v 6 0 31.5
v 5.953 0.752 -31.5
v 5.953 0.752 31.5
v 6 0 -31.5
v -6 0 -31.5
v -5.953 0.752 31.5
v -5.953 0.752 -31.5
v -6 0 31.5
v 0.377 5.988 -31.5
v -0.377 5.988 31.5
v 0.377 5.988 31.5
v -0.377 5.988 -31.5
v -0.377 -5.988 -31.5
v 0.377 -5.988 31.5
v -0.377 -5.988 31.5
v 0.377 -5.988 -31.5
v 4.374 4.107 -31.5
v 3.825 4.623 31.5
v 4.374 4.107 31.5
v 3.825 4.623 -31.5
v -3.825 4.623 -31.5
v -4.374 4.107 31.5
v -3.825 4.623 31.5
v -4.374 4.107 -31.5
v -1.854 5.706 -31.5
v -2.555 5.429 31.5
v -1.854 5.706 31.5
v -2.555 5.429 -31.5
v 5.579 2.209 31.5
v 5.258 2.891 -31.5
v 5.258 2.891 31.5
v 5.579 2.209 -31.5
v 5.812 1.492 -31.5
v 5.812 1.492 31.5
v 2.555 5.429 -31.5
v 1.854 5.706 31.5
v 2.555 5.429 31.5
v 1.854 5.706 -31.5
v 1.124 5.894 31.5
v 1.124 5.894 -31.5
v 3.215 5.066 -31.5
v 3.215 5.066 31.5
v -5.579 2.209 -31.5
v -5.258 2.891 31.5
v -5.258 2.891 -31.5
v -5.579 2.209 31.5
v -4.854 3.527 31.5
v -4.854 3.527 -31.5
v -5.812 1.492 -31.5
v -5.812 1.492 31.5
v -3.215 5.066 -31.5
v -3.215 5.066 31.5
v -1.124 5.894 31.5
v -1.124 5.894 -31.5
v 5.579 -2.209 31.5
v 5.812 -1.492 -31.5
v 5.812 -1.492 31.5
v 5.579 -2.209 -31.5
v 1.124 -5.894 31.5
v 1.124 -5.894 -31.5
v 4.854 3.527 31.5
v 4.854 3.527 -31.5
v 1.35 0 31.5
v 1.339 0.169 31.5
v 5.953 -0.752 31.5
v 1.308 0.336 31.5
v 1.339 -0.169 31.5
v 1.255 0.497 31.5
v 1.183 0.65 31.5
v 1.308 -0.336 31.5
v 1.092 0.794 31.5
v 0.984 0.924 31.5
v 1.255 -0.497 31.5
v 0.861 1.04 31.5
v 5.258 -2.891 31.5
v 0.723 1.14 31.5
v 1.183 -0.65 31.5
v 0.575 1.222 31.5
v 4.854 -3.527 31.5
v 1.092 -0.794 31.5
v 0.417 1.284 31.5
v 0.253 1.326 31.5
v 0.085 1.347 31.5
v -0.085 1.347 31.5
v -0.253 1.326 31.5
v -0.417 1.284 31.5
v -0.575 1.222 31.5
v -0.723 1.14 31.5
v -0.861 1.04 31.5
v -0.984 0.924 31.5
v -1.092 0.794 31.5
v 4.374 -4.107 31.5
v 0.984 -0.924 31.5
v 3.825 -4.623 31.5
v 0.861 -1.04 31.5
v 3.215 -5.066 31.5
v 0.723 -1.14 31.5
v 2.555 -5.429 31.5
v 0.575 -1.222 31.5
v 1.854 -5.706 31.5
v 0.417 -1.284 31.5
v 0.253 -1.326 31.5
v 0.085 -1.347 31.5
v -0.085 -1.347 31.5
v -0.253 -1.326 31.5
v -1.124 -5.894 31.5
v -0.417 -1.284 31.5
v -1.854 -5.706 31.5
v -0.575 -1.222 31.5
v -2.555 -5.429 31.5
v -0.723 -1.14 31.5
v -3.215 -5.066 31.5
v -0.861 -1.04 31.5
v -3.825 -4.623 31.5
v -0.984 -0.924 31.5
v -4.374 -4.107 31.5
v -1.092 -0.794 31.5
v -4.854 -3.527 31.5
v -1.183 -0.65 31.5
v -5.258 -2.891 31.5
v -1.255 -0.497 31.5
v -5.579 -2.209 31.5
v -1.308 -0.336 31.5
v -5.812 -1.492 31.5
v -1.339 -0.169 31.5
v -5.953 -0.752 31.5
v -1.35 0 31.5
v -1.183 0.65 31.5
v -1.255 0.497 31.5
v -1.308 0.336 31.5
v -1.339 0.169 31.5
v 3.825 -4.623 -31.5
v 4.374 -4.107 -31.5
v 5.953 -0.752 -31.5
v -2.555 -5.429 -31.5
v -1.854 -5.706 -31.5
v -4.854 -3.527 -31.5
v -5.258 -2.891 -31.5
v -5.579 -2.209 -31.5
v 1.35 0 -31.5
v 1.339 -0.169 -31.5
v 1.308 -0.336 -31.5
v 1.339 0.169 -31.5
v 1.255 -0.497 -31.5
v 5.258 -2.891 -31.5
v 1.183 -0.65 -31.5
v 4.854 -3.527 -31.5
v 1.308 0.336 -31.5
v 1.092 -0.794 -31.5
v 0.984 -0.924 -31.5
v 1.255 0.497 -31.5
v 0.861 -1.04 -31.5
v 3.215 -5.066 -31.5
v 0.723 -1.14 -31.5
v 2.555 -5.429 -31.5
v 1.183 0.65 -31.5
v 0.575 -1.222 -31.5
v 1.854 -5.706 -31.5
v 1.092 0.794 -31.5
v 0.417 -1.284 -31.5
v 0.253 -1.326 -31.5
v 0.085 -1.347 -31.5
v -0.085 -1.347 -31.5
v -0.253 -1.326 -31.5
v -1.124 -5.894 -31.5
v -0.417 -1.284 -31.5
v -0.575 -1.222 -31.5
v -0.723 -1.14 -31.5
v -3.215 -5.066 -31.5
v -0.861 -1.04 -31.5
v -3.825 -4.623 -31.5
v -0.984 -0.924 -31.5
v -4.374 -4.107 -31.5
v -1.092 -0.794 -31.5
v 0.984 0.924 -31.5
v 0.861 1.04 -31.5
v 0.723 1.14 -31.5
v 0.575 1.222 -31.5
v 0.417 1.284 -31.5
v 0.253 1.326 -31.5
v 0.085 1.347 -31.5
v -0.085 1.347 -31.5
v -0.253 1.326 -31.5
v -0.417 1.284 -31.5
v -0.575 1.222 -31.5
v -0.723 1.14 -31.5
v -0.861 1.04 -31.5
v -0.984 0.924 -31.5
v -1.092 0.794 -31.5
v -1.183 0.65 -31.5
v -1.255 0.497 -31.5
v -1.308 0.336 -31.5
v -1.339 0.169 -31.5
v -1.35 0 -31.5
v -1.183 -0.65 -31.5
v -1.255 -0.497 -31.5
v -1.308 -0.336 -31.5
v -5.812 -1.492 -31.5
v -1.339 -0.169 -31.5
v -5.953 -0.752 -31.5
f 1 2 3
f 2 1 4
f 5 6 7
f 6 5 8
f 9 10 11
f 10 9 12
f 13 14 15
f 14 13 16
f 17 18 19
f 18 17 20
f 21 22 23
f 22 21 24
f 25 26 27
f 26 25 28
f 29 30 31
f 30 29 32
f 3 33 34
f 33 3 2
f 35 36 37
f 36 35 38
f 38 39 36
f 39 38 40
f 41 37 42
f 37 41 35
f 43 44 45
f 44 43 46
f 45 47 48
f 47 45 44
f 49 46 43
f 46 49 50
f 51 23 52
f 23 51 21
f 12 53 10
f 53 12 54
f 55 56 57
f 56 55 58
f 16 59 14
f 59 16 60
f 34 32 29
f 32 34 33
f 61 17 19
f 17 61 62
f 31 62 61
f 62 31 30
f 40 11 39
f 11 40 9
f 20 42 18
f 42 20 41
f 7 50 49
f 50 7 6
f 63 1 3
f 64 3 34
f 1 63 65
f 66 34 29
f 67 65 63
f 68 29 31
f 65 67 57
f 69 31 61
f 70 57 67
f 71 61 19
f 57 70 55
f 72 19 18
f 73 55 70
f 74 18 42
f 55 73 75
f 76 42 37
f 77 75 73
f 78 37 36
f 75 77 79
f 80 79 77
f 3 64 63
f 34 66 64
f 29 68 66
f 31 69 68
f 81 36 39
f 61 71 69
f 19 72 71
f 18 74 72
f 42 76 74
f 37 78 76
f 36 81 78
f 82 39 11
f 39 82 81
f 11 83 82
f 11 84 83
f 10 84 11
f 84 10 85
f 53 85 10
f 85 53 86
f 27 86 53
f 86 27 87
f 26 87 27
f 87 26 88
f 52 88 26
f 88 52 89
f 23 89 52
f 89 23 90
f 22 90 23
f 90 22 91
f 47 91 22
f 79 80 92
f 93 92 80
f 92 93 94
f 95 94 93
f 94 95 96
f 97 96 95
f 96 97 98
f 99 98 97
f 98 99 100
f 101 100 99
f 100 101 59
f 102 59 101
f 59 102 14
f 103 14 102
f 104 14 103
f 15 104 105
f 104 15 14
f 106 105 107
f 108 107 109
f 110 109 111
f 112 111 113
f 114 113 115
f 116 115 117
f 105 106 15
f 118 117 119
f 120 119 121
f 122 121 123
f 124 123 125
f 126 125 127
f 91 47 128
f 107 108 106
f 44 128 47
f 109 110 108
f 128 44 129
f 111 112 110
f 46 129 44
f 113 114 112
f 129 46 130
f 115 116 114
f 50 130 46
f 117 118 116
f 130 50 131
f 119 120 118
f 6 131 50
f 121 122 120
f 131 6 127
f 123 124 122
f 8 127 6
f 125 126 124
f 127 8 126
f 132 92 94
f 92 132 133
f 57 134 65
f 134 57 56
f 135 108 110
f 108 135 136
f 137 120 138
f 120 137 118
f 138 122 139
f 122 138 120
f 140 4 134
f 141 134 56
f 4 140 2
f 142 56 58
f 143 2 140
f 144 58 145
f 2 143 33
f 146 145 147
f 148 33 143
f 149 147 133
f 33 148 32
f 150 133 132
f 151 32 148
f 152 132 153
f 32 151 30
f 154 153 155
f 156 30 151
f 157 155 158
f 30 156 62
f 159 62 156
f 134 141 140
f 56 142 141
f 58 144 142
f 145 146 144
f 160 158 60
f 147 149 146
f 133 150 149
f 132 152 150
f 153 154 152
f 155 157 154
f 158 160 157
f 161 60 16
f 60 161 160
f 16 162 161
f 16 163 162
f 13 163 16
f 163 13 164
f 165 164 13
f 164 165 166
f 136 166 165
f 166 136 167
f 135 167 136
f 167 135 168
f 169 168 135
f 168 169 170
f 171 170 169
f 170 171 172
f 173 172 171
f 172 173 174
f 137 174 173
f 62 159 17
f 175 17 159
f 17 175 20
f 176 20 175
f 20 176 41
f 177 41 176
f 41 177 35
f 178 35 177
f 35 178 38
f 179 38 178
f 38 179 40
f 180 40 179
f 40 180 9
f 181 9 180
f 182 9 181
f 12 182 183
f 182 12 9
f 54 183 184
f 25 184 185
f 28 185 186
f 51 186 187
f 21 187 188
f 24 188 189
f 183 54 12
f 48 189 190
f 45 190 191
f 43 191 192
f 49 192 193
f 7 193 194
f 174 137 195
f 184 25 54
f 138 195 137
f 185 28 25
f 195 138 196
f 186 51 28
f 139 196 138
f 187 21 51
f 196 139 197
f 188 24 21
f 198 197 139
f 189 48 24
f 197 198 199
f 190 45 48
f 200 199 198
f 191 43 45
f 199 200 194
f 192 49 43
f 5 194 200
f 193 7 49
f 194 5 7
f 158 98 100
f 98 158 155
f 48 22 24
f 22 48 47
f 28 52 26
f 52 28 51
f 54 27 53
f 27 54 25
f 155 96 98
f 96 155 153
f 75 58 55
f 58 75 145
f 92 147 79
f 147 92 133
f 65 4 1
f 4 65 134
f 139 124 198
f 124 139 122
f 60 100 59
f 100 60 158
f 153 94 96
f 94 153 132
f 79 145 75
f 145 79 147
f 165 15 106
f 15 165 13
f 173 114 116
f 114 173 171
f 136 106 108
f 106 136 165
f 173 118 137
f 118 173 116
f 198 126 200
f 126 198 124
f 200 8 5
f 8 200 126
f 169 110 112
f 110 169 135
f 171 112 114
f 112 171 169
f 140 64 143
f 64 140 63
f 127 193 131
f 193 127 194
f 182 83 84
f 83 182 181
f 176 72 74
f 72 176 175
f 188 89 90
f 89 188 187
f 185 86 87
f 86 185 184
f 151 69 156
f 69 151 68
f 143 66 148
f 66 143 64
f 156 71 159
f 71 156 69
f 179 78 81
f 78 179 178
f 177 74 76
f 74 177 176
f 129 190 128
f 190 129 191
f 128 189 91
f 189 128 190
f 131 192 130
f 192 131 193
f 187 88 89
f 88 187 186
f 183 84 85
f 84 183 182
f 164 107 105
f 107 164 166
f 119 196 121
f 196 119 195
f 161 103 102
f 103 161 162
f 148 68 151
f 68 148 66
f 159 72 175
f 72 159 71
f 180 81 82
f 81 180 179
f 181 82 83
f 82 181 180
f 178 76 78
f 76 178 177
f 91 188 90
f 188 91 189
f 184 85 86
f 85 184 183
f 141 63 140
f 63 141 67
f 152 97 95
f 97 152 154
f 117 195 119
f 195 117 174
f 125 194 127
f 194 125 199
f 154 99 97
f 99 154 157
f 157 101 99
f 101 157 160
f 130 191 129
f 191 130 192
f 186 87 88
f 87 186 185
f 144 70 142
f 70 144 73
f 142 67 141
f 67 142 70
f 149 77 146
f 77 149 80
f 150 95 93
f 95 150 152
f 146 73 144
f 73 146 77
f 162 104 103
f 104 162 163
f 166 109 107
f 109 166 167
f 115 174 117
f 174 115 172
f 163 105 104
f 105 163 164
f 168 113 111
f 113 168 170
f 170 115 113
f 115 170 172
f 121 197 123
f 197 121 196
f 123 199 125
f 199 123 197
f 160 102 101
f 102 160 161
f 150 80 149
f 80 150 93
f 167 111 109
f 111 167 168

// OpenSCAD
$fn = 50;


difference() {
	union() {
		translate(v = [0, 0, -31.5000000000]) {
			cylinder(h = 63, r = 6.0000000000);
		}
	}
	union() {
		translate(v = [0, 0, -100.0000000000]) {
			cylinder(h = 200, r = 1.3500000000);
		}
	}
}
